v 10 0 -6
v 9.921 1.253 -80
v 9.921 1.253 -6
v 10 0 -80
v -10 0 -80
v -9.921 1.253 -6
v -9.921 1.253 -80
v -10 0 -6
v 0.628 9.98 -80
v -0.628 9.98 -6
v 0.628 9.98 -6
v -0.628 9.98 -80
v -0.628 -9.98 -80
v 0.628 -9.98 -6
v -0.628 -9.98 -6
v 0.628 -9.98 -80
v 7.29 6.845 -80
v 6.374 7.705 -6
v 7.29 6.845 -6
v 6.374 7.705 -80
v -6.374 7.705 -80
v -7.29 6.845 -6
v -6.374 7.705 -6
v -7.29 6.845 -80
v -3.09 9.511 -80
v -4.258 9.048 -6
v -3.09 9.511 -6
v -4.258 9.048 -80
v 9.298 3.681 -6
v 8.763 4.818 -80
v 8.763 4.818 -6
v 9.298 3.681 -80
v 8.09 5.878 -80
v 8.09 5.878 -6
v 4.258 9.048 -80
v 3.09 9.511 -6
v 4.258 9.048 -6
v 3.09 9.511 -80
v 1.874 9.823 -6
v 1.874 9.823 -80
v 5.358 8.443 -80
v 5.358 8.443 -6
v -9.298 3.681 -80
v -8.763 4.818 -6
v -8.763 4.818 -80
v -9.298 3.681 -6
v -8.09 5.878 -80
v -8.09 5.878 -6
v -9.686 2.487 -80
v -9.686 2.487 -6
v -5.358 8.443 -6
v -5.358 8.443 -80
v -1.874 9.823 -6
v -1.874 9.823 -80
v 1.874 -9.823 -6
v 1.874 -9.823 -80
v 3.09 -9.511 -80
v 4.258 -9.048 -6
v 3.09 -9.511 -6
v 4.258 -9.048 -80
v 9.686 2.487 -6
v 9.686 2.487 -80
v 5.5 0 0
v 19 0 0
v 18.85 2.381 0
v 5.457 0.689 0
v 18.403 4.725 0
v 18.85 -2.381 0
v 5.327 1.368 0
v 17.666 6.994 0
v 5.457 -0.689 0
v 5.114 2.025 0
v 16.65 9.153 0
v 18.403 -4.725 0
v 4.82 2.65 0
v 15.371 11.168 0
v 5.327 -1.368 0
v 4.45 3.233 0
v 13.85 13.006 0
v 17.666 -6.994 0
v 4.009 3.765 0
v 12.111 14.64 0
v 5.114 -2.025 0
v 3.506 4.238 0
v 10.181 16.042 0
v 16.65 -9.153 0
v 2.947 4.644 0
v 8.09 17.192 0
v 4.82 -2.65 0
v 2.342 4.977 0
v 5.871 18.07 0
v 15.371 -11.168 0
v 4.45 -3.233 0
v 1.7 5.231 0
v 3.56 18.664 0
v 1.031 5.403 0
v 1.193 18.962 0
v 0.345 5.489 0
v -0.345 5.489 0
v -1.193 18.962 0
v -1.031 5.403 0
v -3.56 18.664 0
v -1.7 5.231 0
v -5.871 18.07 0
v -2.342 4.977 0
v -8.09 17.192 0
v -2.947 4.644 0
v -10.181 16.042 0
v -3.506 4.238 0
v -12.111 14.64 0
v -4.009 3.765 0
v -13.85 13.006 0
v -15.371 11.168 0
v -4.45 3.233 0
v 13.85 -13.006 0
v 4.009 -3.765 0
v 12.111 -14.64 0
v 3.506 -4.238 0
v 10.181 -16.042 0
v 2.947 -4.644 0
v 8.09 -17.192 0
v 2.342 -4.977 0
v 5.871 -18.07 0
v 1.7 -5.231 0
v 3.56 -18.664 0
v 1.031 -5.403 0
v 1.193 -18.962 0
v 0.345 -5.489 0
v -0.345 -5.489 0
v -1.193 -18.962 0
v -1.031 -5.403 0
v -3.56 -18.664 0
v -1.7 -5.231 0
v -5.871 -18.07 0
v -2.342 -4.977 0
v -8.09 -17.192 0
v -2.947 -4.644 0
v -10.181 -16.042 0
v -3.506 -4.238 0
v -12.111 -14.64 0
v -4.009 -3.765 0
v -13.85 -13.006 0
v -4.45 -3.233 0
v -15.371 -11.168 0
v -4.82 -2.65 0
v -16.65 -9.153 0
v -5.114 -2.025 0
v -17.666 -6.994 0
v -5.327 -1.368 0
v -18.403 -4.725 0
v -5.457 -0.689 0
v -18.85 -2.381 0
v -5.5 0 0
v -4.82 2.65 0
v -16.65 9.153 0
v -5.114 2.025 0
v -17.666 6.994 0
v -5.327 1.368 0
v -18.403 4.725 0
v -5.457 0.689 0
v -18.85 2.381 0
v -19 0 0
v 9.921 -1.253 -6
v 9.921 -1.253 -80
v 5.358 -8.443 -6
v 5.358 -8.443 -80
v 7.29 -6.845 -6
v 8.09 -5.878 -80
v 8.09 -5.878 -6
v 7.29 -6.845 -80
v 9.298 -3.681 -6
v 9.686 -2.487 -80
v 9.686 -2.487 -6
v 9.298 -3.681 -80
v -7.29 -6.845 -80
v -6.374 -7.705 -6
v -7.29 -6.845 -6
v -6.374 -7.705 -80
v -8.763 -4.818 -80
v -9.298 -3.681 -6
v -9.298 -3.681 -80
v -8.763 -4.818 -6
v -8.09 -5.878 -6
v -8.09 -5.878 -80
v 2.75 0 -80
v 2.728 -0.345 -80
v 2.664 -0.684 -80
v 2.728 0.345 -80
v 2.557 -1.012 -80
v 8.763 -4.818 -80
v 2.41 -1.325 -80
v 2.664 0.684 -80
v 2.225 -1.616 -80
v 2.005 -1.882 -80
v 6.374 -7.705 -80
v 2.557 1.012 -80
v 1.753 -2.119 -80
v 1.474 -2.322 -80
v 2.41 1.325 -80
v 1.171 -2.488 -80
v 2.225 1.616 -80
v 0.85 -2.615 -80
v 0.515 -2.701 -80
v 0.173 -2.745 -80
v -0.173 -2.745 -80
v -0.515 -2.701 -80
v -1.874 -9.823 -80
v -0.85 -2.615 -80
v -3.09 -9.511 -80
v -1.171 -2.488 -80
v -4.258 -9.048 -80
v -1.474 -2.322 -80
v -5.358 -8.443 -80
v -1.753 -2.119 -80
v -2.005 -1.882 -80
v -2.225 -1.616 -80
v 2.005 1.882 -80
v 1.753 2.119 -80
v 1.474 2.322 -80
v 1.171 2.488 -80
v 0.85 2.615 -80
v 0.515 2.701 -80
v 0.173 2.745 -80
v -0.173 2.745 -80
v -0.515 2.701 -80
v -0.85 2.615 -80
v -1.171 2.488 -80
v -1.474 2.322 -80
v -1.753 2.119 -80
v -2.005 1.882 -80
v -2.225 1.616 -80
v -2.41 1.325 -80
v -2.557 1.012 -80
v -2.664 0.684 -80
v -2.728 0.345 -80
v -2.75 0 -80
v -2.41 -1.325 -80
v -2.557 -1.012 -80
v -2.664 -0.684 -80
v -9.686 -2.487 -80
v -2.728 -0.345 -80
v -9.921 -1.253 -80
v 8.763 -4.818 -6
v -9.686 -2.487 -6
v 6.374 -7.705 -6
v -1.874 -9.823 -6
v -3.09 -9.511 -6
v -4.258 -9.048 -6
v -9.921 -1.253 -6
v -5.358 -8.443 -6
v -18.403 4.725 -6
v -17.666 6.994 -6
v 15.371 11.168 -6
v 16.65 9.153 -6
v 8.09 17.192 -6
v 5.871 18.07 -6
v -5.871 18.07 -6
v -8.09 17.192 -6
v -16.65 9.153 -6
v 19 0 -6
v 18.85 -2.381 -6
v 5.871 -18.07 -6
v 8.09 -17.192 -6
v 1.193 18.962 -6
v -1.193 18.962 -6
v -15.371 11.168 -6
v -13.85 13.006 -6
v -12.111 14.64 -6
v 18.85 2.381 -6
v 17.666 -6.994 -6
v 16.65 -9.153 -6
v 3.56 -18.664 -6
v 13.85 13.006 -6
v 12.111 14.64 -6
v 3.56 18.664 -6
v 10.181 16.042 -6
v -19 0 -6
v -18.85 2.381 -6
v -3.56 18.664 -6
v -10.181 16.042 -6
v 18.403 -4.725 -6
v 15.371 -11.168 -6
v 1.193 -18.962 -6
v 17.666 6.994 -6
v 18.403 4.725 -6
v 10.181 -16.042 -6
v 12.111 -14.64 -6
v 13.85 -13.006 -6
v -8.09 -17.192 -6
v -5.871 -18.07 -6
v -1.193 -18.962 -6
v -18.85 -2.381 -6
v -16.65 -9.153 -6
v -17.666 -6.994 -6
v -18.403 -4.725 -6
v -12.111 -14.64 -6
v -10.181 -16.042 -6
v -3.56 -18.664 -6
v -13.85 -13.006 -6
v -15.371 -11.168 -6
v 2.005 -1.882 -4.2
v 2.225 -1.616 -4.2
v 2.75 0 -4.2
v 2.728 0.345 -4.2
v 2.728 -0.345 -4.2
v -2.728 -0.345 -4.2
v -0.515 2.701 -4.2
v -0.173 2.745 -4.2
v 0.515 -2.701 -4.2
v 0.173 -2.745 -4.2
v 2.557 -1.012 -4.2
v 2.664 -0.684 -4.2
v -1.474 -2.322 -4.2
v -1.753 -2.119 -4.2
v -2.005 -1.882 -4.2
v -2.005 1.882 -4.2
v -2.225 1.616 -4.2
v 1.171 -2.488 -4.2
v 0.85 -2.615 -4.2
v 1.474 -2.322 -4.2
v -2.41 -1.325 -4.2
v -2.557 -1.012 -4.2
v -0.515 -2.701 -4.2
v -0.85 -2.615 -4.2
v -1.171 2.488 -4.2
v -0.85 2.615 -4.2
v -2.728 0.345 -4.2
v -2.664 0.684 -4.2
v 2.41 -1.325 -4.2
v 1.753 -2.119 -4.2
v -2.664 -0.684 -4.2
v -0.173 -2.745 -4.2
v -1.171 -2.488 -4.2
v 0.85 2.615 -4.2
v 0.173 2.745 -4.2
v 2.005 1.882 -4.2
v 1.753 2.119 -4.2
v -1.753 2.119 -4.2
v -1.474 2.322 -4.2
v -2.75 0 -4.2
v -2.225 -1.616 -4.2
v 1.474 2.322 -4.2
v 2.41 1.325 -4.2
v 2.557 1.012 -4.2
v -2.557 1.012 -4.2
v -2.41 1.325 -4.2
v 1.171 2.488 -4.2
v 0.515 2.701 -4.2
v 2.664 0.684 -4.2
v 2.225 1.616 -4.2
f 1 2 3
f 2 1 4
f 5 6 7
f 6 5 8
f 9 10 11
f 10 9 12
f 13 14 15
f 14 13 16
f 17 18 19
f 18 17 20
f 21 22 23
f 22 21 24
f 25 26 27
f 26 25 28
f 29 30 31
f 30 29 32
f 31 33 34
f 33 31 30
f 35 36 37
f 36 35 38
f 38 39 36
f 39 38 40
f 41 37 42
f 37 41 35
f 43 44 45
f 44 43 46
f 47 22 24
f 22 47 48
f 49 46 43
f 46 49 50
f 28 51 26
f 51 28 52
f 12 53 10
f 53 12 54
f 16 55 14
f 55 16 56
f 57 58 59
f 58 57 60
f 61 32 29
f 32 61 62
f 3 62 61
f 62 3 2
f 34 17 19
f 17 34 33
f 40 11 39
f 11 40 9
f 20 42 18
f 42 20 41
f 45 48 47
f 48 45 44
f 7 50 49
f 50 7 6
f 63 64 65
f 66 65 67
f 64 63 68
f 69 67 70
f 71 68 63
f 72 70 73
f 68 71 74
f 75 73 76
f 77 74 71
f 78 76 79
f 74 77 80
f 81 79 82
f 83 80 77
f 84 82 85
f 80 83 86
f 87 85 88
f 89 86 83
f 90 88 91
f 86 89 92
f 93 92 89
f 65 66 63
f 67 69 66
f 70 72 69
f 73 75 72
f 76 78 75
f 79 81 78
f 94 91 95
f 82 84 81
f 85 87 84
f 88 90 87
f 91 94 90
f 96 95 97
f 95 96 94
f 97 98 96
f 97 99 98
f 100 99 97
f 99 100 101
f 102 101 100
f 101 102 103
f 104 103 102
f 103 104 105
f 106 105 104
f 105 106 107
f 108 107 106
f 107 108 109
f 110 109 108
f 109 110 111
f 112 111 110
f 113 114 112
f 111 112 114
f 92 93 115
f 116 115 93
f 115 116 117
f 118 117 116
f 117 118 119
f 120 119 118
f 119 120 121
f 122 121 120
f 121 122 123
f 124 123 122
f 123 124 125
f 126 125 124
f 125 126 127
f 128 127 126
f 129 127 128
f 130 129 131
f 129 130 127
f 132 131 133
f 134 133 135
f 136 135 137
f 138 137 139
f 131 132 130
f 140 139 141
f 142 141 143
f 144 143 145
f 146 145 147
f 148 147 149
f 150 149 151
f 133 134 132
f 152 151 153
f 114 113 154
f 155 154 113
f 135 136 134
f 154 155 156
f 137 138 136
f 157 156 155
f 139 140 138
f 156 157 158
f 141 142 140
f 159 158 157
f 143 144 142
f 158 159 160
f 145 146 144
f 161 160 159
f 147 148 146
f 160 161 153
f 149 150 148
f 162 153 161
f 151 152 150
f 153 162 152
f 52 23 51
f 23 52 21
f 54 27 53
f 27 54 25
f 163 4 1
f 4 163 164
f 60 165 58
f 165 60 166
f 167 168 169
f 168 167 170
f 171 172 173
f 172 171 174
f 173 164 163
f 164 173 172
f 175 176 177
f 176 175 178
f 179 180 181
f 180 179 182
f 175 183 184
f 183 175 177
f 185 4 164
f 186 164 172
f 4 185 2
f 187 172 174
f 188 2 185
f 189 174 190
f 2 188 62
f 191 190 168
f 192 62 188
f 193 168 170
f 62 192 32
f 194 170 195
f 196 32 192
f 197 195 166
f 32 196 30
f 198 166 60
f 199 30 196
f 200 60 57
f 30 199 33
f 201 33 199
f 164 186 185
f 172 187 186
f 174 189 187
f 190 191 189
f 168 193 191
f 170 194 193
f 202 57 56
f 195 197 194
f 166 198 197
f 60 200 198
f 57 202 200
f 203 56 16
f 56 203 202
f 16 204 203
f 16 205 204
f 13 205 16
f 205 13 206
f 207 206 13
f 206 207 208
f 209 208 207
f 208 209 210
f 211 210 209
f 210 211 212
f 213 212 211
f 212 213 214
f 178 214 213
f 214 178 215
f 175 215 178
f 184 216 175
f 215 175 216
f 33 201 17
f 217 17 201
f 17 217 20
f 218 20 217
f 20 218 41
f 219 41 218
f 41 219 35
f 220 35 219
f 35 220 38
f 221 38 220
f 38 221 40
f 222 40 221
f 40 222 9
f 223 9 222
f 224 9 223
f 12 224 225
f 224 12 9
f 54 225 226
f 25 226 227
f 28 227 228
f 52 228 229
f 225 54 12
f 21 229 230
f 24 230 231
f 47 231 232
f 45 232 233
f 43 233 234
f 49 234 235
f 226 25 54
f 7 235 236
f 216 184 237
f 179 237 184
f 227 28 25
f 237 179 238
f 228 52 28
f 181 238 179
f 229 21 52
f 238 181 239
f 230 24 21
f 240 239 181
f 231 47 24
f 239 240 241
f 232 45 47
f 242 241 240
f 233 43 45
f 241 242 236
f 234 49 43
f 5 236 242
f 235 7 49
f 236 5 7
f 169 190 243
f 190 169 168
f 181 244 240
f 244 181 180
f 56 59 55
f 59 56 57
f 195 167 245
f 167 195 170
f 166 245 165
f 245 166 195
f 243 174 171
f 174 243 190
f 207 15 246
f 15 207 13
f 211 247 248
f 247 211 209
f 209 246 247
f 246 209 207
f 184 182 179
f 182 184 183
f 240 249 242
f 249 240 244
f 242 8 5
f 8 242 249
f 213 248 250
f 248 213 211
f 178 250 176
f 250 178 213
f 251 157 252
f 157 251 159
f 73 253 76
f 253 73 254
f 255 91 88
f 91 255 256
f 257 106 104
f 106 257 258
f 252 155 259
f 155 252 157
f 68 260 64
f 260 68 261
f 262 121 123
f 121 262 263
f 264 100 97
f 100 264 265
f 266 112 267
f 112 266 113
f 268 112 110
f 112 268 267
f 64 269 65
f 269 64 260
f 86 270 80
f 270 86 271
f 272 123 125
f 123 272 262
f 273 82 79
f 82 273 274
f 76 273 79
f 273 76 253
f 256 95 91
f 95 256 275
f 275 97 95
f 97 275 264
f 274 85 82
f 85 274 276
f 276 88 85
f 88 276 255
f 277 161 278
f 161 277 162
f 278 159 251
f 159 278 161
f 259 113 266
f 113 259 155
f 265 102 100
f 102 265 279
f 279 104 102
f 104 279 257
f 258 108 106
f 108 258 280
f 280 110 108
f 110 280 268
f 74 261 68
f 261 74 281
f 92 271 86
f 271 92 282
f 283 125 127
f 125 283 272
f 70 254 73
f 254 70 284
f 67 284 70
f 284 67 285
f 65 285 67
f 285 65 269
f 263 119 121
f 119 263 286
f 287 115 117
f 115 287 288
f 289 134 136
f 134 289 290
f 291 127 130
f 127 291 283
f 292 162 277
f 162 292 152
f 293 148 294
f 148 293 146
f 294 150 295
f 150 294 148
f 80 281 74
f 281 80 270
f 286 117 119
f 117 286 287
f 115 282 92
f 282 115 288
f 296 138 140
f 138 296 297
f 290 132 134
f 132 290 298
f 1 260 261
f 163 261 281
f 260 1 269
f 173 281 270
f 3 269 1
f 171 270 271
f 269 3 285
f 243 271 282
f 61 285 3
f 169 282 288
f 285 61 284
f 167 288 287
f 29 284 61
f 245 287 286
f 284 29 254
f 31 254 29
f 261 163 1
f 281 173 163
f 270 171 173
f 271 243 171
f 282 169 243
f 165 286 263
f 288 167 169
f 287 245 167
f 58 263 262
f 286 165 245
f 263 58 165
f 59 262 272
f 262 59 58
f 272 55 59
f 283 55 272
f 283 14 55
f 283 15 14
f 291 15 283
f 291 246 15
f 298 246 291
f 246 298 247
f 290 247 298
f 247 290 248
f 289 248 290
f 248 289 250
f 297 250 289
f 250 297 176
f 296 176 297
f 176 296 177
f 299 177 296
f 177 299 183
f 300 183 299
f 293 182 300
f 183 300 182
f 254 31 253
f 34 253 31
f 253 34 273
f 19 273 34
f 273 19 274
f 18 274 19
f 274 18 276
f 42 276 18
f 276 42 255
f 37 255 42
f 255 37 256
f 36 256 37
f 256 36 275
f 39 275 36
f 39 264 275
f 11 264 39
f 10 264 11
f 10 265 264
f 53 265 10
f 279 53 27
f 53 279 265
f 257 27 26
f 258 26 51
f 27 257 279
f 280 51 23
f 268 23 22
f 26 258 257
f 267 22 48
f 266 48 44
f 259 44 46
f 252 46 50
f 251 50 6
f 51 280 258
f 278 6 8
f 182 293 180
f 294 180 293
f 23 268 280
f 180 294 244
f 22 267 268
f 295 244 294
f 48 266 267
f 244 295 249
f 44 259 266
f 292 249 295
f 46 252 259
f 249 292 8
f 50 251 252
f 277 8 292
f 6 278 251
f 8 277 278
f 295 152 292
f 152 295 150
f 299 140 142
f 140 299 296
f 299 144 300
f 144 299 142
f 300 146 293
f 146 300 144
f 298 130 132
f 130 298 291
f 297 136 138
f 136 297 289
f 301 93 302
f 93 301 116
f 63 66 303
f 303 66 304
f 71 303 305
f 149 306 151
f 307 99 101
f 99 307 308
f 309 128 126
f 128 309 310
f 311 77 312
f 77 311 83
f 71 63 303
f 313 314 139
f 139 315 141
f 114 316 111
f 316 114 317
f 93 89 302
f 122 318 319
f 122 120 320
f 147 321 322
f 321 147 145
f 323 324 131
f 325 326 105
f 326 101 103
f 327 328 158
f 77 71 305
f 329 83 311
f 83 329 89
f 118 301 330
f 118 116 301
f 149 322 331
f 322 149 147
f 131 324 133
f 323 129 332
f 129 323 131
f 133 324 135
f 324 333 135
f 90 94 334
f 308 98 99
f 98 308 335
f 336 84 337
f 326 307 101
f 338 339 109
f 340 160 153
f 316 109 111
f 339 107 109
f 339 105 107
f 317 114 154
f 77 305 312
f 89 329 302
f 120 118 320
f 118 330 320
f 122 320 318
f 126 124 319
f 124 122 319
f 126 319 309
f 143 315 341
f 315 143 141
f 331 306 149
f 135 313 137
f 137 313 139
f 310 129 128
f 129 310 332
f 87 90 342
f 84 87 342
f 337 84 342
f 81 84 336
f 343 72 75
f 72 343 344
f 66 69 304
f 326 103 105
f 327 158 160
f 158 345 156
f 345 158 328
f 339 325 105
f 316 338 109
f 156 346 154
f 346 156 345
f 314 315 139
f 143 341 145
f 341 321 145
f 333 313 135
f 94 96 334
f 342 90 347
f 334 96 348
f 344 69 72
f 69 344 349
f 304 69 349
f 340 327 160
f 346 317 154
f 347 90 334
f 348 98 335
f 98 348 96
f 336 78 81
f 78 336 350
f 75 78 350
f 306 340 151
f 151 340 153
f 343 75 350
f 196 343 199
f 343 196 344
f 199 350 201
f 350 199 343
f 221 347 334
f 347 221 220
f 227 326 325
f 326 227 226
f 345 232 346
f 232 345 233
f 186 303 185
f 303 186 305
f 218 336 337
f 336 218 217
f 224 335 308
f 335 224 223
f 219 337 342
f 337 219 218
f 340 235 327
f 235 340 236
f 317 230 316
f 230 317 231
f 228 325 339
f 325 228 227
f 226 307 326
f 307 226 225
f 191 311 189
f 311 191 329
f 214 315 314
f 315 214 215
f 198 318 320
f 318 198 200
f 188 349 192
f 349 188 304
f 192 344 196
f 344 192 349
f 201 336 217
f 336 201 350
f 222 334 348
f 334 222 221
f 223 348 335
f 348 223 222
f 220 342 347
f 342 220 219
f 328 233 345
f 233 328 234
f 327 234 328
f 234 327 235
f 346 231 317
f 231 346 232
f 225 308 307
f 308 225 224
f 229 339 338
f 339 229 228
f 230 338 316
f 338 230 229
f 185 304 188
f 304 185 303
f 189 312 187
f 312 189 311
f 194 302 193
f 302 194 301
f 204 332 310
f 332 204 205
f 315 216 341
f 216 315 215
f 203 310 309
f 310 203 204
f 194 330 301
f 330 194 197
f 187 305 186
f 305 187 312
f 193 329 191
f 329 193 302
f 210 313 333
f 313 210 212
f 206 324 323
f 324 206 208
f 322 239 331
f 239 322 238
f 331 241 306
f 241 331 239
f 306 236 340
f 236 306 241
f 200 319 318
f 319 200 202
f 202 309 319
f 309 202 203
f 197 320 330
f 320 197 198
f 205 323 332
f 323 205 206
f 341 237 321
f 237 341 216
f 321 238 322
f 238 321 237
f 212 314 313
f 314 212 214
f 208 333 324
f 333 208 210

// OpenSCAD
$fn = 50;


difference() {
	union() {
		translate(v = [0, 0, -80.0000000000]) {
			cylinder(h = 80, r = 10.0000000000);
		}
		translate(v = [0, 0, -6.0000000000]) {
			cylinder(h = 6, r = 19.0000000000);
		}
	}
	union() {
		translate(v = [0, 0, 0]) {
			rotate(a = [0, 0, 0]) {
				difference() {
					union() {
						#translate(v = [0, 0, -80.0000000000]) {
							cylinder(h = 80, r = 2.2500000000);
						}
						#translate(v = [0, 0, -4.2000000000]) {
							cylinder(h = 4.2000000000, r = 10.0000000000, r1 = 2.7500000000, r2 = 5.5000000000);
						}
						#translate(v = [0, 0, -80.0000000000]) {
							cylinder(h = 80, r = 2.7500000000);
						}
						#translate(v = [0, 0, -80.0000000000]) {
							cylinder(h = 80, r = 2.2500000000);
						}
					}
					union();
				}
			}
		}
	}
}
